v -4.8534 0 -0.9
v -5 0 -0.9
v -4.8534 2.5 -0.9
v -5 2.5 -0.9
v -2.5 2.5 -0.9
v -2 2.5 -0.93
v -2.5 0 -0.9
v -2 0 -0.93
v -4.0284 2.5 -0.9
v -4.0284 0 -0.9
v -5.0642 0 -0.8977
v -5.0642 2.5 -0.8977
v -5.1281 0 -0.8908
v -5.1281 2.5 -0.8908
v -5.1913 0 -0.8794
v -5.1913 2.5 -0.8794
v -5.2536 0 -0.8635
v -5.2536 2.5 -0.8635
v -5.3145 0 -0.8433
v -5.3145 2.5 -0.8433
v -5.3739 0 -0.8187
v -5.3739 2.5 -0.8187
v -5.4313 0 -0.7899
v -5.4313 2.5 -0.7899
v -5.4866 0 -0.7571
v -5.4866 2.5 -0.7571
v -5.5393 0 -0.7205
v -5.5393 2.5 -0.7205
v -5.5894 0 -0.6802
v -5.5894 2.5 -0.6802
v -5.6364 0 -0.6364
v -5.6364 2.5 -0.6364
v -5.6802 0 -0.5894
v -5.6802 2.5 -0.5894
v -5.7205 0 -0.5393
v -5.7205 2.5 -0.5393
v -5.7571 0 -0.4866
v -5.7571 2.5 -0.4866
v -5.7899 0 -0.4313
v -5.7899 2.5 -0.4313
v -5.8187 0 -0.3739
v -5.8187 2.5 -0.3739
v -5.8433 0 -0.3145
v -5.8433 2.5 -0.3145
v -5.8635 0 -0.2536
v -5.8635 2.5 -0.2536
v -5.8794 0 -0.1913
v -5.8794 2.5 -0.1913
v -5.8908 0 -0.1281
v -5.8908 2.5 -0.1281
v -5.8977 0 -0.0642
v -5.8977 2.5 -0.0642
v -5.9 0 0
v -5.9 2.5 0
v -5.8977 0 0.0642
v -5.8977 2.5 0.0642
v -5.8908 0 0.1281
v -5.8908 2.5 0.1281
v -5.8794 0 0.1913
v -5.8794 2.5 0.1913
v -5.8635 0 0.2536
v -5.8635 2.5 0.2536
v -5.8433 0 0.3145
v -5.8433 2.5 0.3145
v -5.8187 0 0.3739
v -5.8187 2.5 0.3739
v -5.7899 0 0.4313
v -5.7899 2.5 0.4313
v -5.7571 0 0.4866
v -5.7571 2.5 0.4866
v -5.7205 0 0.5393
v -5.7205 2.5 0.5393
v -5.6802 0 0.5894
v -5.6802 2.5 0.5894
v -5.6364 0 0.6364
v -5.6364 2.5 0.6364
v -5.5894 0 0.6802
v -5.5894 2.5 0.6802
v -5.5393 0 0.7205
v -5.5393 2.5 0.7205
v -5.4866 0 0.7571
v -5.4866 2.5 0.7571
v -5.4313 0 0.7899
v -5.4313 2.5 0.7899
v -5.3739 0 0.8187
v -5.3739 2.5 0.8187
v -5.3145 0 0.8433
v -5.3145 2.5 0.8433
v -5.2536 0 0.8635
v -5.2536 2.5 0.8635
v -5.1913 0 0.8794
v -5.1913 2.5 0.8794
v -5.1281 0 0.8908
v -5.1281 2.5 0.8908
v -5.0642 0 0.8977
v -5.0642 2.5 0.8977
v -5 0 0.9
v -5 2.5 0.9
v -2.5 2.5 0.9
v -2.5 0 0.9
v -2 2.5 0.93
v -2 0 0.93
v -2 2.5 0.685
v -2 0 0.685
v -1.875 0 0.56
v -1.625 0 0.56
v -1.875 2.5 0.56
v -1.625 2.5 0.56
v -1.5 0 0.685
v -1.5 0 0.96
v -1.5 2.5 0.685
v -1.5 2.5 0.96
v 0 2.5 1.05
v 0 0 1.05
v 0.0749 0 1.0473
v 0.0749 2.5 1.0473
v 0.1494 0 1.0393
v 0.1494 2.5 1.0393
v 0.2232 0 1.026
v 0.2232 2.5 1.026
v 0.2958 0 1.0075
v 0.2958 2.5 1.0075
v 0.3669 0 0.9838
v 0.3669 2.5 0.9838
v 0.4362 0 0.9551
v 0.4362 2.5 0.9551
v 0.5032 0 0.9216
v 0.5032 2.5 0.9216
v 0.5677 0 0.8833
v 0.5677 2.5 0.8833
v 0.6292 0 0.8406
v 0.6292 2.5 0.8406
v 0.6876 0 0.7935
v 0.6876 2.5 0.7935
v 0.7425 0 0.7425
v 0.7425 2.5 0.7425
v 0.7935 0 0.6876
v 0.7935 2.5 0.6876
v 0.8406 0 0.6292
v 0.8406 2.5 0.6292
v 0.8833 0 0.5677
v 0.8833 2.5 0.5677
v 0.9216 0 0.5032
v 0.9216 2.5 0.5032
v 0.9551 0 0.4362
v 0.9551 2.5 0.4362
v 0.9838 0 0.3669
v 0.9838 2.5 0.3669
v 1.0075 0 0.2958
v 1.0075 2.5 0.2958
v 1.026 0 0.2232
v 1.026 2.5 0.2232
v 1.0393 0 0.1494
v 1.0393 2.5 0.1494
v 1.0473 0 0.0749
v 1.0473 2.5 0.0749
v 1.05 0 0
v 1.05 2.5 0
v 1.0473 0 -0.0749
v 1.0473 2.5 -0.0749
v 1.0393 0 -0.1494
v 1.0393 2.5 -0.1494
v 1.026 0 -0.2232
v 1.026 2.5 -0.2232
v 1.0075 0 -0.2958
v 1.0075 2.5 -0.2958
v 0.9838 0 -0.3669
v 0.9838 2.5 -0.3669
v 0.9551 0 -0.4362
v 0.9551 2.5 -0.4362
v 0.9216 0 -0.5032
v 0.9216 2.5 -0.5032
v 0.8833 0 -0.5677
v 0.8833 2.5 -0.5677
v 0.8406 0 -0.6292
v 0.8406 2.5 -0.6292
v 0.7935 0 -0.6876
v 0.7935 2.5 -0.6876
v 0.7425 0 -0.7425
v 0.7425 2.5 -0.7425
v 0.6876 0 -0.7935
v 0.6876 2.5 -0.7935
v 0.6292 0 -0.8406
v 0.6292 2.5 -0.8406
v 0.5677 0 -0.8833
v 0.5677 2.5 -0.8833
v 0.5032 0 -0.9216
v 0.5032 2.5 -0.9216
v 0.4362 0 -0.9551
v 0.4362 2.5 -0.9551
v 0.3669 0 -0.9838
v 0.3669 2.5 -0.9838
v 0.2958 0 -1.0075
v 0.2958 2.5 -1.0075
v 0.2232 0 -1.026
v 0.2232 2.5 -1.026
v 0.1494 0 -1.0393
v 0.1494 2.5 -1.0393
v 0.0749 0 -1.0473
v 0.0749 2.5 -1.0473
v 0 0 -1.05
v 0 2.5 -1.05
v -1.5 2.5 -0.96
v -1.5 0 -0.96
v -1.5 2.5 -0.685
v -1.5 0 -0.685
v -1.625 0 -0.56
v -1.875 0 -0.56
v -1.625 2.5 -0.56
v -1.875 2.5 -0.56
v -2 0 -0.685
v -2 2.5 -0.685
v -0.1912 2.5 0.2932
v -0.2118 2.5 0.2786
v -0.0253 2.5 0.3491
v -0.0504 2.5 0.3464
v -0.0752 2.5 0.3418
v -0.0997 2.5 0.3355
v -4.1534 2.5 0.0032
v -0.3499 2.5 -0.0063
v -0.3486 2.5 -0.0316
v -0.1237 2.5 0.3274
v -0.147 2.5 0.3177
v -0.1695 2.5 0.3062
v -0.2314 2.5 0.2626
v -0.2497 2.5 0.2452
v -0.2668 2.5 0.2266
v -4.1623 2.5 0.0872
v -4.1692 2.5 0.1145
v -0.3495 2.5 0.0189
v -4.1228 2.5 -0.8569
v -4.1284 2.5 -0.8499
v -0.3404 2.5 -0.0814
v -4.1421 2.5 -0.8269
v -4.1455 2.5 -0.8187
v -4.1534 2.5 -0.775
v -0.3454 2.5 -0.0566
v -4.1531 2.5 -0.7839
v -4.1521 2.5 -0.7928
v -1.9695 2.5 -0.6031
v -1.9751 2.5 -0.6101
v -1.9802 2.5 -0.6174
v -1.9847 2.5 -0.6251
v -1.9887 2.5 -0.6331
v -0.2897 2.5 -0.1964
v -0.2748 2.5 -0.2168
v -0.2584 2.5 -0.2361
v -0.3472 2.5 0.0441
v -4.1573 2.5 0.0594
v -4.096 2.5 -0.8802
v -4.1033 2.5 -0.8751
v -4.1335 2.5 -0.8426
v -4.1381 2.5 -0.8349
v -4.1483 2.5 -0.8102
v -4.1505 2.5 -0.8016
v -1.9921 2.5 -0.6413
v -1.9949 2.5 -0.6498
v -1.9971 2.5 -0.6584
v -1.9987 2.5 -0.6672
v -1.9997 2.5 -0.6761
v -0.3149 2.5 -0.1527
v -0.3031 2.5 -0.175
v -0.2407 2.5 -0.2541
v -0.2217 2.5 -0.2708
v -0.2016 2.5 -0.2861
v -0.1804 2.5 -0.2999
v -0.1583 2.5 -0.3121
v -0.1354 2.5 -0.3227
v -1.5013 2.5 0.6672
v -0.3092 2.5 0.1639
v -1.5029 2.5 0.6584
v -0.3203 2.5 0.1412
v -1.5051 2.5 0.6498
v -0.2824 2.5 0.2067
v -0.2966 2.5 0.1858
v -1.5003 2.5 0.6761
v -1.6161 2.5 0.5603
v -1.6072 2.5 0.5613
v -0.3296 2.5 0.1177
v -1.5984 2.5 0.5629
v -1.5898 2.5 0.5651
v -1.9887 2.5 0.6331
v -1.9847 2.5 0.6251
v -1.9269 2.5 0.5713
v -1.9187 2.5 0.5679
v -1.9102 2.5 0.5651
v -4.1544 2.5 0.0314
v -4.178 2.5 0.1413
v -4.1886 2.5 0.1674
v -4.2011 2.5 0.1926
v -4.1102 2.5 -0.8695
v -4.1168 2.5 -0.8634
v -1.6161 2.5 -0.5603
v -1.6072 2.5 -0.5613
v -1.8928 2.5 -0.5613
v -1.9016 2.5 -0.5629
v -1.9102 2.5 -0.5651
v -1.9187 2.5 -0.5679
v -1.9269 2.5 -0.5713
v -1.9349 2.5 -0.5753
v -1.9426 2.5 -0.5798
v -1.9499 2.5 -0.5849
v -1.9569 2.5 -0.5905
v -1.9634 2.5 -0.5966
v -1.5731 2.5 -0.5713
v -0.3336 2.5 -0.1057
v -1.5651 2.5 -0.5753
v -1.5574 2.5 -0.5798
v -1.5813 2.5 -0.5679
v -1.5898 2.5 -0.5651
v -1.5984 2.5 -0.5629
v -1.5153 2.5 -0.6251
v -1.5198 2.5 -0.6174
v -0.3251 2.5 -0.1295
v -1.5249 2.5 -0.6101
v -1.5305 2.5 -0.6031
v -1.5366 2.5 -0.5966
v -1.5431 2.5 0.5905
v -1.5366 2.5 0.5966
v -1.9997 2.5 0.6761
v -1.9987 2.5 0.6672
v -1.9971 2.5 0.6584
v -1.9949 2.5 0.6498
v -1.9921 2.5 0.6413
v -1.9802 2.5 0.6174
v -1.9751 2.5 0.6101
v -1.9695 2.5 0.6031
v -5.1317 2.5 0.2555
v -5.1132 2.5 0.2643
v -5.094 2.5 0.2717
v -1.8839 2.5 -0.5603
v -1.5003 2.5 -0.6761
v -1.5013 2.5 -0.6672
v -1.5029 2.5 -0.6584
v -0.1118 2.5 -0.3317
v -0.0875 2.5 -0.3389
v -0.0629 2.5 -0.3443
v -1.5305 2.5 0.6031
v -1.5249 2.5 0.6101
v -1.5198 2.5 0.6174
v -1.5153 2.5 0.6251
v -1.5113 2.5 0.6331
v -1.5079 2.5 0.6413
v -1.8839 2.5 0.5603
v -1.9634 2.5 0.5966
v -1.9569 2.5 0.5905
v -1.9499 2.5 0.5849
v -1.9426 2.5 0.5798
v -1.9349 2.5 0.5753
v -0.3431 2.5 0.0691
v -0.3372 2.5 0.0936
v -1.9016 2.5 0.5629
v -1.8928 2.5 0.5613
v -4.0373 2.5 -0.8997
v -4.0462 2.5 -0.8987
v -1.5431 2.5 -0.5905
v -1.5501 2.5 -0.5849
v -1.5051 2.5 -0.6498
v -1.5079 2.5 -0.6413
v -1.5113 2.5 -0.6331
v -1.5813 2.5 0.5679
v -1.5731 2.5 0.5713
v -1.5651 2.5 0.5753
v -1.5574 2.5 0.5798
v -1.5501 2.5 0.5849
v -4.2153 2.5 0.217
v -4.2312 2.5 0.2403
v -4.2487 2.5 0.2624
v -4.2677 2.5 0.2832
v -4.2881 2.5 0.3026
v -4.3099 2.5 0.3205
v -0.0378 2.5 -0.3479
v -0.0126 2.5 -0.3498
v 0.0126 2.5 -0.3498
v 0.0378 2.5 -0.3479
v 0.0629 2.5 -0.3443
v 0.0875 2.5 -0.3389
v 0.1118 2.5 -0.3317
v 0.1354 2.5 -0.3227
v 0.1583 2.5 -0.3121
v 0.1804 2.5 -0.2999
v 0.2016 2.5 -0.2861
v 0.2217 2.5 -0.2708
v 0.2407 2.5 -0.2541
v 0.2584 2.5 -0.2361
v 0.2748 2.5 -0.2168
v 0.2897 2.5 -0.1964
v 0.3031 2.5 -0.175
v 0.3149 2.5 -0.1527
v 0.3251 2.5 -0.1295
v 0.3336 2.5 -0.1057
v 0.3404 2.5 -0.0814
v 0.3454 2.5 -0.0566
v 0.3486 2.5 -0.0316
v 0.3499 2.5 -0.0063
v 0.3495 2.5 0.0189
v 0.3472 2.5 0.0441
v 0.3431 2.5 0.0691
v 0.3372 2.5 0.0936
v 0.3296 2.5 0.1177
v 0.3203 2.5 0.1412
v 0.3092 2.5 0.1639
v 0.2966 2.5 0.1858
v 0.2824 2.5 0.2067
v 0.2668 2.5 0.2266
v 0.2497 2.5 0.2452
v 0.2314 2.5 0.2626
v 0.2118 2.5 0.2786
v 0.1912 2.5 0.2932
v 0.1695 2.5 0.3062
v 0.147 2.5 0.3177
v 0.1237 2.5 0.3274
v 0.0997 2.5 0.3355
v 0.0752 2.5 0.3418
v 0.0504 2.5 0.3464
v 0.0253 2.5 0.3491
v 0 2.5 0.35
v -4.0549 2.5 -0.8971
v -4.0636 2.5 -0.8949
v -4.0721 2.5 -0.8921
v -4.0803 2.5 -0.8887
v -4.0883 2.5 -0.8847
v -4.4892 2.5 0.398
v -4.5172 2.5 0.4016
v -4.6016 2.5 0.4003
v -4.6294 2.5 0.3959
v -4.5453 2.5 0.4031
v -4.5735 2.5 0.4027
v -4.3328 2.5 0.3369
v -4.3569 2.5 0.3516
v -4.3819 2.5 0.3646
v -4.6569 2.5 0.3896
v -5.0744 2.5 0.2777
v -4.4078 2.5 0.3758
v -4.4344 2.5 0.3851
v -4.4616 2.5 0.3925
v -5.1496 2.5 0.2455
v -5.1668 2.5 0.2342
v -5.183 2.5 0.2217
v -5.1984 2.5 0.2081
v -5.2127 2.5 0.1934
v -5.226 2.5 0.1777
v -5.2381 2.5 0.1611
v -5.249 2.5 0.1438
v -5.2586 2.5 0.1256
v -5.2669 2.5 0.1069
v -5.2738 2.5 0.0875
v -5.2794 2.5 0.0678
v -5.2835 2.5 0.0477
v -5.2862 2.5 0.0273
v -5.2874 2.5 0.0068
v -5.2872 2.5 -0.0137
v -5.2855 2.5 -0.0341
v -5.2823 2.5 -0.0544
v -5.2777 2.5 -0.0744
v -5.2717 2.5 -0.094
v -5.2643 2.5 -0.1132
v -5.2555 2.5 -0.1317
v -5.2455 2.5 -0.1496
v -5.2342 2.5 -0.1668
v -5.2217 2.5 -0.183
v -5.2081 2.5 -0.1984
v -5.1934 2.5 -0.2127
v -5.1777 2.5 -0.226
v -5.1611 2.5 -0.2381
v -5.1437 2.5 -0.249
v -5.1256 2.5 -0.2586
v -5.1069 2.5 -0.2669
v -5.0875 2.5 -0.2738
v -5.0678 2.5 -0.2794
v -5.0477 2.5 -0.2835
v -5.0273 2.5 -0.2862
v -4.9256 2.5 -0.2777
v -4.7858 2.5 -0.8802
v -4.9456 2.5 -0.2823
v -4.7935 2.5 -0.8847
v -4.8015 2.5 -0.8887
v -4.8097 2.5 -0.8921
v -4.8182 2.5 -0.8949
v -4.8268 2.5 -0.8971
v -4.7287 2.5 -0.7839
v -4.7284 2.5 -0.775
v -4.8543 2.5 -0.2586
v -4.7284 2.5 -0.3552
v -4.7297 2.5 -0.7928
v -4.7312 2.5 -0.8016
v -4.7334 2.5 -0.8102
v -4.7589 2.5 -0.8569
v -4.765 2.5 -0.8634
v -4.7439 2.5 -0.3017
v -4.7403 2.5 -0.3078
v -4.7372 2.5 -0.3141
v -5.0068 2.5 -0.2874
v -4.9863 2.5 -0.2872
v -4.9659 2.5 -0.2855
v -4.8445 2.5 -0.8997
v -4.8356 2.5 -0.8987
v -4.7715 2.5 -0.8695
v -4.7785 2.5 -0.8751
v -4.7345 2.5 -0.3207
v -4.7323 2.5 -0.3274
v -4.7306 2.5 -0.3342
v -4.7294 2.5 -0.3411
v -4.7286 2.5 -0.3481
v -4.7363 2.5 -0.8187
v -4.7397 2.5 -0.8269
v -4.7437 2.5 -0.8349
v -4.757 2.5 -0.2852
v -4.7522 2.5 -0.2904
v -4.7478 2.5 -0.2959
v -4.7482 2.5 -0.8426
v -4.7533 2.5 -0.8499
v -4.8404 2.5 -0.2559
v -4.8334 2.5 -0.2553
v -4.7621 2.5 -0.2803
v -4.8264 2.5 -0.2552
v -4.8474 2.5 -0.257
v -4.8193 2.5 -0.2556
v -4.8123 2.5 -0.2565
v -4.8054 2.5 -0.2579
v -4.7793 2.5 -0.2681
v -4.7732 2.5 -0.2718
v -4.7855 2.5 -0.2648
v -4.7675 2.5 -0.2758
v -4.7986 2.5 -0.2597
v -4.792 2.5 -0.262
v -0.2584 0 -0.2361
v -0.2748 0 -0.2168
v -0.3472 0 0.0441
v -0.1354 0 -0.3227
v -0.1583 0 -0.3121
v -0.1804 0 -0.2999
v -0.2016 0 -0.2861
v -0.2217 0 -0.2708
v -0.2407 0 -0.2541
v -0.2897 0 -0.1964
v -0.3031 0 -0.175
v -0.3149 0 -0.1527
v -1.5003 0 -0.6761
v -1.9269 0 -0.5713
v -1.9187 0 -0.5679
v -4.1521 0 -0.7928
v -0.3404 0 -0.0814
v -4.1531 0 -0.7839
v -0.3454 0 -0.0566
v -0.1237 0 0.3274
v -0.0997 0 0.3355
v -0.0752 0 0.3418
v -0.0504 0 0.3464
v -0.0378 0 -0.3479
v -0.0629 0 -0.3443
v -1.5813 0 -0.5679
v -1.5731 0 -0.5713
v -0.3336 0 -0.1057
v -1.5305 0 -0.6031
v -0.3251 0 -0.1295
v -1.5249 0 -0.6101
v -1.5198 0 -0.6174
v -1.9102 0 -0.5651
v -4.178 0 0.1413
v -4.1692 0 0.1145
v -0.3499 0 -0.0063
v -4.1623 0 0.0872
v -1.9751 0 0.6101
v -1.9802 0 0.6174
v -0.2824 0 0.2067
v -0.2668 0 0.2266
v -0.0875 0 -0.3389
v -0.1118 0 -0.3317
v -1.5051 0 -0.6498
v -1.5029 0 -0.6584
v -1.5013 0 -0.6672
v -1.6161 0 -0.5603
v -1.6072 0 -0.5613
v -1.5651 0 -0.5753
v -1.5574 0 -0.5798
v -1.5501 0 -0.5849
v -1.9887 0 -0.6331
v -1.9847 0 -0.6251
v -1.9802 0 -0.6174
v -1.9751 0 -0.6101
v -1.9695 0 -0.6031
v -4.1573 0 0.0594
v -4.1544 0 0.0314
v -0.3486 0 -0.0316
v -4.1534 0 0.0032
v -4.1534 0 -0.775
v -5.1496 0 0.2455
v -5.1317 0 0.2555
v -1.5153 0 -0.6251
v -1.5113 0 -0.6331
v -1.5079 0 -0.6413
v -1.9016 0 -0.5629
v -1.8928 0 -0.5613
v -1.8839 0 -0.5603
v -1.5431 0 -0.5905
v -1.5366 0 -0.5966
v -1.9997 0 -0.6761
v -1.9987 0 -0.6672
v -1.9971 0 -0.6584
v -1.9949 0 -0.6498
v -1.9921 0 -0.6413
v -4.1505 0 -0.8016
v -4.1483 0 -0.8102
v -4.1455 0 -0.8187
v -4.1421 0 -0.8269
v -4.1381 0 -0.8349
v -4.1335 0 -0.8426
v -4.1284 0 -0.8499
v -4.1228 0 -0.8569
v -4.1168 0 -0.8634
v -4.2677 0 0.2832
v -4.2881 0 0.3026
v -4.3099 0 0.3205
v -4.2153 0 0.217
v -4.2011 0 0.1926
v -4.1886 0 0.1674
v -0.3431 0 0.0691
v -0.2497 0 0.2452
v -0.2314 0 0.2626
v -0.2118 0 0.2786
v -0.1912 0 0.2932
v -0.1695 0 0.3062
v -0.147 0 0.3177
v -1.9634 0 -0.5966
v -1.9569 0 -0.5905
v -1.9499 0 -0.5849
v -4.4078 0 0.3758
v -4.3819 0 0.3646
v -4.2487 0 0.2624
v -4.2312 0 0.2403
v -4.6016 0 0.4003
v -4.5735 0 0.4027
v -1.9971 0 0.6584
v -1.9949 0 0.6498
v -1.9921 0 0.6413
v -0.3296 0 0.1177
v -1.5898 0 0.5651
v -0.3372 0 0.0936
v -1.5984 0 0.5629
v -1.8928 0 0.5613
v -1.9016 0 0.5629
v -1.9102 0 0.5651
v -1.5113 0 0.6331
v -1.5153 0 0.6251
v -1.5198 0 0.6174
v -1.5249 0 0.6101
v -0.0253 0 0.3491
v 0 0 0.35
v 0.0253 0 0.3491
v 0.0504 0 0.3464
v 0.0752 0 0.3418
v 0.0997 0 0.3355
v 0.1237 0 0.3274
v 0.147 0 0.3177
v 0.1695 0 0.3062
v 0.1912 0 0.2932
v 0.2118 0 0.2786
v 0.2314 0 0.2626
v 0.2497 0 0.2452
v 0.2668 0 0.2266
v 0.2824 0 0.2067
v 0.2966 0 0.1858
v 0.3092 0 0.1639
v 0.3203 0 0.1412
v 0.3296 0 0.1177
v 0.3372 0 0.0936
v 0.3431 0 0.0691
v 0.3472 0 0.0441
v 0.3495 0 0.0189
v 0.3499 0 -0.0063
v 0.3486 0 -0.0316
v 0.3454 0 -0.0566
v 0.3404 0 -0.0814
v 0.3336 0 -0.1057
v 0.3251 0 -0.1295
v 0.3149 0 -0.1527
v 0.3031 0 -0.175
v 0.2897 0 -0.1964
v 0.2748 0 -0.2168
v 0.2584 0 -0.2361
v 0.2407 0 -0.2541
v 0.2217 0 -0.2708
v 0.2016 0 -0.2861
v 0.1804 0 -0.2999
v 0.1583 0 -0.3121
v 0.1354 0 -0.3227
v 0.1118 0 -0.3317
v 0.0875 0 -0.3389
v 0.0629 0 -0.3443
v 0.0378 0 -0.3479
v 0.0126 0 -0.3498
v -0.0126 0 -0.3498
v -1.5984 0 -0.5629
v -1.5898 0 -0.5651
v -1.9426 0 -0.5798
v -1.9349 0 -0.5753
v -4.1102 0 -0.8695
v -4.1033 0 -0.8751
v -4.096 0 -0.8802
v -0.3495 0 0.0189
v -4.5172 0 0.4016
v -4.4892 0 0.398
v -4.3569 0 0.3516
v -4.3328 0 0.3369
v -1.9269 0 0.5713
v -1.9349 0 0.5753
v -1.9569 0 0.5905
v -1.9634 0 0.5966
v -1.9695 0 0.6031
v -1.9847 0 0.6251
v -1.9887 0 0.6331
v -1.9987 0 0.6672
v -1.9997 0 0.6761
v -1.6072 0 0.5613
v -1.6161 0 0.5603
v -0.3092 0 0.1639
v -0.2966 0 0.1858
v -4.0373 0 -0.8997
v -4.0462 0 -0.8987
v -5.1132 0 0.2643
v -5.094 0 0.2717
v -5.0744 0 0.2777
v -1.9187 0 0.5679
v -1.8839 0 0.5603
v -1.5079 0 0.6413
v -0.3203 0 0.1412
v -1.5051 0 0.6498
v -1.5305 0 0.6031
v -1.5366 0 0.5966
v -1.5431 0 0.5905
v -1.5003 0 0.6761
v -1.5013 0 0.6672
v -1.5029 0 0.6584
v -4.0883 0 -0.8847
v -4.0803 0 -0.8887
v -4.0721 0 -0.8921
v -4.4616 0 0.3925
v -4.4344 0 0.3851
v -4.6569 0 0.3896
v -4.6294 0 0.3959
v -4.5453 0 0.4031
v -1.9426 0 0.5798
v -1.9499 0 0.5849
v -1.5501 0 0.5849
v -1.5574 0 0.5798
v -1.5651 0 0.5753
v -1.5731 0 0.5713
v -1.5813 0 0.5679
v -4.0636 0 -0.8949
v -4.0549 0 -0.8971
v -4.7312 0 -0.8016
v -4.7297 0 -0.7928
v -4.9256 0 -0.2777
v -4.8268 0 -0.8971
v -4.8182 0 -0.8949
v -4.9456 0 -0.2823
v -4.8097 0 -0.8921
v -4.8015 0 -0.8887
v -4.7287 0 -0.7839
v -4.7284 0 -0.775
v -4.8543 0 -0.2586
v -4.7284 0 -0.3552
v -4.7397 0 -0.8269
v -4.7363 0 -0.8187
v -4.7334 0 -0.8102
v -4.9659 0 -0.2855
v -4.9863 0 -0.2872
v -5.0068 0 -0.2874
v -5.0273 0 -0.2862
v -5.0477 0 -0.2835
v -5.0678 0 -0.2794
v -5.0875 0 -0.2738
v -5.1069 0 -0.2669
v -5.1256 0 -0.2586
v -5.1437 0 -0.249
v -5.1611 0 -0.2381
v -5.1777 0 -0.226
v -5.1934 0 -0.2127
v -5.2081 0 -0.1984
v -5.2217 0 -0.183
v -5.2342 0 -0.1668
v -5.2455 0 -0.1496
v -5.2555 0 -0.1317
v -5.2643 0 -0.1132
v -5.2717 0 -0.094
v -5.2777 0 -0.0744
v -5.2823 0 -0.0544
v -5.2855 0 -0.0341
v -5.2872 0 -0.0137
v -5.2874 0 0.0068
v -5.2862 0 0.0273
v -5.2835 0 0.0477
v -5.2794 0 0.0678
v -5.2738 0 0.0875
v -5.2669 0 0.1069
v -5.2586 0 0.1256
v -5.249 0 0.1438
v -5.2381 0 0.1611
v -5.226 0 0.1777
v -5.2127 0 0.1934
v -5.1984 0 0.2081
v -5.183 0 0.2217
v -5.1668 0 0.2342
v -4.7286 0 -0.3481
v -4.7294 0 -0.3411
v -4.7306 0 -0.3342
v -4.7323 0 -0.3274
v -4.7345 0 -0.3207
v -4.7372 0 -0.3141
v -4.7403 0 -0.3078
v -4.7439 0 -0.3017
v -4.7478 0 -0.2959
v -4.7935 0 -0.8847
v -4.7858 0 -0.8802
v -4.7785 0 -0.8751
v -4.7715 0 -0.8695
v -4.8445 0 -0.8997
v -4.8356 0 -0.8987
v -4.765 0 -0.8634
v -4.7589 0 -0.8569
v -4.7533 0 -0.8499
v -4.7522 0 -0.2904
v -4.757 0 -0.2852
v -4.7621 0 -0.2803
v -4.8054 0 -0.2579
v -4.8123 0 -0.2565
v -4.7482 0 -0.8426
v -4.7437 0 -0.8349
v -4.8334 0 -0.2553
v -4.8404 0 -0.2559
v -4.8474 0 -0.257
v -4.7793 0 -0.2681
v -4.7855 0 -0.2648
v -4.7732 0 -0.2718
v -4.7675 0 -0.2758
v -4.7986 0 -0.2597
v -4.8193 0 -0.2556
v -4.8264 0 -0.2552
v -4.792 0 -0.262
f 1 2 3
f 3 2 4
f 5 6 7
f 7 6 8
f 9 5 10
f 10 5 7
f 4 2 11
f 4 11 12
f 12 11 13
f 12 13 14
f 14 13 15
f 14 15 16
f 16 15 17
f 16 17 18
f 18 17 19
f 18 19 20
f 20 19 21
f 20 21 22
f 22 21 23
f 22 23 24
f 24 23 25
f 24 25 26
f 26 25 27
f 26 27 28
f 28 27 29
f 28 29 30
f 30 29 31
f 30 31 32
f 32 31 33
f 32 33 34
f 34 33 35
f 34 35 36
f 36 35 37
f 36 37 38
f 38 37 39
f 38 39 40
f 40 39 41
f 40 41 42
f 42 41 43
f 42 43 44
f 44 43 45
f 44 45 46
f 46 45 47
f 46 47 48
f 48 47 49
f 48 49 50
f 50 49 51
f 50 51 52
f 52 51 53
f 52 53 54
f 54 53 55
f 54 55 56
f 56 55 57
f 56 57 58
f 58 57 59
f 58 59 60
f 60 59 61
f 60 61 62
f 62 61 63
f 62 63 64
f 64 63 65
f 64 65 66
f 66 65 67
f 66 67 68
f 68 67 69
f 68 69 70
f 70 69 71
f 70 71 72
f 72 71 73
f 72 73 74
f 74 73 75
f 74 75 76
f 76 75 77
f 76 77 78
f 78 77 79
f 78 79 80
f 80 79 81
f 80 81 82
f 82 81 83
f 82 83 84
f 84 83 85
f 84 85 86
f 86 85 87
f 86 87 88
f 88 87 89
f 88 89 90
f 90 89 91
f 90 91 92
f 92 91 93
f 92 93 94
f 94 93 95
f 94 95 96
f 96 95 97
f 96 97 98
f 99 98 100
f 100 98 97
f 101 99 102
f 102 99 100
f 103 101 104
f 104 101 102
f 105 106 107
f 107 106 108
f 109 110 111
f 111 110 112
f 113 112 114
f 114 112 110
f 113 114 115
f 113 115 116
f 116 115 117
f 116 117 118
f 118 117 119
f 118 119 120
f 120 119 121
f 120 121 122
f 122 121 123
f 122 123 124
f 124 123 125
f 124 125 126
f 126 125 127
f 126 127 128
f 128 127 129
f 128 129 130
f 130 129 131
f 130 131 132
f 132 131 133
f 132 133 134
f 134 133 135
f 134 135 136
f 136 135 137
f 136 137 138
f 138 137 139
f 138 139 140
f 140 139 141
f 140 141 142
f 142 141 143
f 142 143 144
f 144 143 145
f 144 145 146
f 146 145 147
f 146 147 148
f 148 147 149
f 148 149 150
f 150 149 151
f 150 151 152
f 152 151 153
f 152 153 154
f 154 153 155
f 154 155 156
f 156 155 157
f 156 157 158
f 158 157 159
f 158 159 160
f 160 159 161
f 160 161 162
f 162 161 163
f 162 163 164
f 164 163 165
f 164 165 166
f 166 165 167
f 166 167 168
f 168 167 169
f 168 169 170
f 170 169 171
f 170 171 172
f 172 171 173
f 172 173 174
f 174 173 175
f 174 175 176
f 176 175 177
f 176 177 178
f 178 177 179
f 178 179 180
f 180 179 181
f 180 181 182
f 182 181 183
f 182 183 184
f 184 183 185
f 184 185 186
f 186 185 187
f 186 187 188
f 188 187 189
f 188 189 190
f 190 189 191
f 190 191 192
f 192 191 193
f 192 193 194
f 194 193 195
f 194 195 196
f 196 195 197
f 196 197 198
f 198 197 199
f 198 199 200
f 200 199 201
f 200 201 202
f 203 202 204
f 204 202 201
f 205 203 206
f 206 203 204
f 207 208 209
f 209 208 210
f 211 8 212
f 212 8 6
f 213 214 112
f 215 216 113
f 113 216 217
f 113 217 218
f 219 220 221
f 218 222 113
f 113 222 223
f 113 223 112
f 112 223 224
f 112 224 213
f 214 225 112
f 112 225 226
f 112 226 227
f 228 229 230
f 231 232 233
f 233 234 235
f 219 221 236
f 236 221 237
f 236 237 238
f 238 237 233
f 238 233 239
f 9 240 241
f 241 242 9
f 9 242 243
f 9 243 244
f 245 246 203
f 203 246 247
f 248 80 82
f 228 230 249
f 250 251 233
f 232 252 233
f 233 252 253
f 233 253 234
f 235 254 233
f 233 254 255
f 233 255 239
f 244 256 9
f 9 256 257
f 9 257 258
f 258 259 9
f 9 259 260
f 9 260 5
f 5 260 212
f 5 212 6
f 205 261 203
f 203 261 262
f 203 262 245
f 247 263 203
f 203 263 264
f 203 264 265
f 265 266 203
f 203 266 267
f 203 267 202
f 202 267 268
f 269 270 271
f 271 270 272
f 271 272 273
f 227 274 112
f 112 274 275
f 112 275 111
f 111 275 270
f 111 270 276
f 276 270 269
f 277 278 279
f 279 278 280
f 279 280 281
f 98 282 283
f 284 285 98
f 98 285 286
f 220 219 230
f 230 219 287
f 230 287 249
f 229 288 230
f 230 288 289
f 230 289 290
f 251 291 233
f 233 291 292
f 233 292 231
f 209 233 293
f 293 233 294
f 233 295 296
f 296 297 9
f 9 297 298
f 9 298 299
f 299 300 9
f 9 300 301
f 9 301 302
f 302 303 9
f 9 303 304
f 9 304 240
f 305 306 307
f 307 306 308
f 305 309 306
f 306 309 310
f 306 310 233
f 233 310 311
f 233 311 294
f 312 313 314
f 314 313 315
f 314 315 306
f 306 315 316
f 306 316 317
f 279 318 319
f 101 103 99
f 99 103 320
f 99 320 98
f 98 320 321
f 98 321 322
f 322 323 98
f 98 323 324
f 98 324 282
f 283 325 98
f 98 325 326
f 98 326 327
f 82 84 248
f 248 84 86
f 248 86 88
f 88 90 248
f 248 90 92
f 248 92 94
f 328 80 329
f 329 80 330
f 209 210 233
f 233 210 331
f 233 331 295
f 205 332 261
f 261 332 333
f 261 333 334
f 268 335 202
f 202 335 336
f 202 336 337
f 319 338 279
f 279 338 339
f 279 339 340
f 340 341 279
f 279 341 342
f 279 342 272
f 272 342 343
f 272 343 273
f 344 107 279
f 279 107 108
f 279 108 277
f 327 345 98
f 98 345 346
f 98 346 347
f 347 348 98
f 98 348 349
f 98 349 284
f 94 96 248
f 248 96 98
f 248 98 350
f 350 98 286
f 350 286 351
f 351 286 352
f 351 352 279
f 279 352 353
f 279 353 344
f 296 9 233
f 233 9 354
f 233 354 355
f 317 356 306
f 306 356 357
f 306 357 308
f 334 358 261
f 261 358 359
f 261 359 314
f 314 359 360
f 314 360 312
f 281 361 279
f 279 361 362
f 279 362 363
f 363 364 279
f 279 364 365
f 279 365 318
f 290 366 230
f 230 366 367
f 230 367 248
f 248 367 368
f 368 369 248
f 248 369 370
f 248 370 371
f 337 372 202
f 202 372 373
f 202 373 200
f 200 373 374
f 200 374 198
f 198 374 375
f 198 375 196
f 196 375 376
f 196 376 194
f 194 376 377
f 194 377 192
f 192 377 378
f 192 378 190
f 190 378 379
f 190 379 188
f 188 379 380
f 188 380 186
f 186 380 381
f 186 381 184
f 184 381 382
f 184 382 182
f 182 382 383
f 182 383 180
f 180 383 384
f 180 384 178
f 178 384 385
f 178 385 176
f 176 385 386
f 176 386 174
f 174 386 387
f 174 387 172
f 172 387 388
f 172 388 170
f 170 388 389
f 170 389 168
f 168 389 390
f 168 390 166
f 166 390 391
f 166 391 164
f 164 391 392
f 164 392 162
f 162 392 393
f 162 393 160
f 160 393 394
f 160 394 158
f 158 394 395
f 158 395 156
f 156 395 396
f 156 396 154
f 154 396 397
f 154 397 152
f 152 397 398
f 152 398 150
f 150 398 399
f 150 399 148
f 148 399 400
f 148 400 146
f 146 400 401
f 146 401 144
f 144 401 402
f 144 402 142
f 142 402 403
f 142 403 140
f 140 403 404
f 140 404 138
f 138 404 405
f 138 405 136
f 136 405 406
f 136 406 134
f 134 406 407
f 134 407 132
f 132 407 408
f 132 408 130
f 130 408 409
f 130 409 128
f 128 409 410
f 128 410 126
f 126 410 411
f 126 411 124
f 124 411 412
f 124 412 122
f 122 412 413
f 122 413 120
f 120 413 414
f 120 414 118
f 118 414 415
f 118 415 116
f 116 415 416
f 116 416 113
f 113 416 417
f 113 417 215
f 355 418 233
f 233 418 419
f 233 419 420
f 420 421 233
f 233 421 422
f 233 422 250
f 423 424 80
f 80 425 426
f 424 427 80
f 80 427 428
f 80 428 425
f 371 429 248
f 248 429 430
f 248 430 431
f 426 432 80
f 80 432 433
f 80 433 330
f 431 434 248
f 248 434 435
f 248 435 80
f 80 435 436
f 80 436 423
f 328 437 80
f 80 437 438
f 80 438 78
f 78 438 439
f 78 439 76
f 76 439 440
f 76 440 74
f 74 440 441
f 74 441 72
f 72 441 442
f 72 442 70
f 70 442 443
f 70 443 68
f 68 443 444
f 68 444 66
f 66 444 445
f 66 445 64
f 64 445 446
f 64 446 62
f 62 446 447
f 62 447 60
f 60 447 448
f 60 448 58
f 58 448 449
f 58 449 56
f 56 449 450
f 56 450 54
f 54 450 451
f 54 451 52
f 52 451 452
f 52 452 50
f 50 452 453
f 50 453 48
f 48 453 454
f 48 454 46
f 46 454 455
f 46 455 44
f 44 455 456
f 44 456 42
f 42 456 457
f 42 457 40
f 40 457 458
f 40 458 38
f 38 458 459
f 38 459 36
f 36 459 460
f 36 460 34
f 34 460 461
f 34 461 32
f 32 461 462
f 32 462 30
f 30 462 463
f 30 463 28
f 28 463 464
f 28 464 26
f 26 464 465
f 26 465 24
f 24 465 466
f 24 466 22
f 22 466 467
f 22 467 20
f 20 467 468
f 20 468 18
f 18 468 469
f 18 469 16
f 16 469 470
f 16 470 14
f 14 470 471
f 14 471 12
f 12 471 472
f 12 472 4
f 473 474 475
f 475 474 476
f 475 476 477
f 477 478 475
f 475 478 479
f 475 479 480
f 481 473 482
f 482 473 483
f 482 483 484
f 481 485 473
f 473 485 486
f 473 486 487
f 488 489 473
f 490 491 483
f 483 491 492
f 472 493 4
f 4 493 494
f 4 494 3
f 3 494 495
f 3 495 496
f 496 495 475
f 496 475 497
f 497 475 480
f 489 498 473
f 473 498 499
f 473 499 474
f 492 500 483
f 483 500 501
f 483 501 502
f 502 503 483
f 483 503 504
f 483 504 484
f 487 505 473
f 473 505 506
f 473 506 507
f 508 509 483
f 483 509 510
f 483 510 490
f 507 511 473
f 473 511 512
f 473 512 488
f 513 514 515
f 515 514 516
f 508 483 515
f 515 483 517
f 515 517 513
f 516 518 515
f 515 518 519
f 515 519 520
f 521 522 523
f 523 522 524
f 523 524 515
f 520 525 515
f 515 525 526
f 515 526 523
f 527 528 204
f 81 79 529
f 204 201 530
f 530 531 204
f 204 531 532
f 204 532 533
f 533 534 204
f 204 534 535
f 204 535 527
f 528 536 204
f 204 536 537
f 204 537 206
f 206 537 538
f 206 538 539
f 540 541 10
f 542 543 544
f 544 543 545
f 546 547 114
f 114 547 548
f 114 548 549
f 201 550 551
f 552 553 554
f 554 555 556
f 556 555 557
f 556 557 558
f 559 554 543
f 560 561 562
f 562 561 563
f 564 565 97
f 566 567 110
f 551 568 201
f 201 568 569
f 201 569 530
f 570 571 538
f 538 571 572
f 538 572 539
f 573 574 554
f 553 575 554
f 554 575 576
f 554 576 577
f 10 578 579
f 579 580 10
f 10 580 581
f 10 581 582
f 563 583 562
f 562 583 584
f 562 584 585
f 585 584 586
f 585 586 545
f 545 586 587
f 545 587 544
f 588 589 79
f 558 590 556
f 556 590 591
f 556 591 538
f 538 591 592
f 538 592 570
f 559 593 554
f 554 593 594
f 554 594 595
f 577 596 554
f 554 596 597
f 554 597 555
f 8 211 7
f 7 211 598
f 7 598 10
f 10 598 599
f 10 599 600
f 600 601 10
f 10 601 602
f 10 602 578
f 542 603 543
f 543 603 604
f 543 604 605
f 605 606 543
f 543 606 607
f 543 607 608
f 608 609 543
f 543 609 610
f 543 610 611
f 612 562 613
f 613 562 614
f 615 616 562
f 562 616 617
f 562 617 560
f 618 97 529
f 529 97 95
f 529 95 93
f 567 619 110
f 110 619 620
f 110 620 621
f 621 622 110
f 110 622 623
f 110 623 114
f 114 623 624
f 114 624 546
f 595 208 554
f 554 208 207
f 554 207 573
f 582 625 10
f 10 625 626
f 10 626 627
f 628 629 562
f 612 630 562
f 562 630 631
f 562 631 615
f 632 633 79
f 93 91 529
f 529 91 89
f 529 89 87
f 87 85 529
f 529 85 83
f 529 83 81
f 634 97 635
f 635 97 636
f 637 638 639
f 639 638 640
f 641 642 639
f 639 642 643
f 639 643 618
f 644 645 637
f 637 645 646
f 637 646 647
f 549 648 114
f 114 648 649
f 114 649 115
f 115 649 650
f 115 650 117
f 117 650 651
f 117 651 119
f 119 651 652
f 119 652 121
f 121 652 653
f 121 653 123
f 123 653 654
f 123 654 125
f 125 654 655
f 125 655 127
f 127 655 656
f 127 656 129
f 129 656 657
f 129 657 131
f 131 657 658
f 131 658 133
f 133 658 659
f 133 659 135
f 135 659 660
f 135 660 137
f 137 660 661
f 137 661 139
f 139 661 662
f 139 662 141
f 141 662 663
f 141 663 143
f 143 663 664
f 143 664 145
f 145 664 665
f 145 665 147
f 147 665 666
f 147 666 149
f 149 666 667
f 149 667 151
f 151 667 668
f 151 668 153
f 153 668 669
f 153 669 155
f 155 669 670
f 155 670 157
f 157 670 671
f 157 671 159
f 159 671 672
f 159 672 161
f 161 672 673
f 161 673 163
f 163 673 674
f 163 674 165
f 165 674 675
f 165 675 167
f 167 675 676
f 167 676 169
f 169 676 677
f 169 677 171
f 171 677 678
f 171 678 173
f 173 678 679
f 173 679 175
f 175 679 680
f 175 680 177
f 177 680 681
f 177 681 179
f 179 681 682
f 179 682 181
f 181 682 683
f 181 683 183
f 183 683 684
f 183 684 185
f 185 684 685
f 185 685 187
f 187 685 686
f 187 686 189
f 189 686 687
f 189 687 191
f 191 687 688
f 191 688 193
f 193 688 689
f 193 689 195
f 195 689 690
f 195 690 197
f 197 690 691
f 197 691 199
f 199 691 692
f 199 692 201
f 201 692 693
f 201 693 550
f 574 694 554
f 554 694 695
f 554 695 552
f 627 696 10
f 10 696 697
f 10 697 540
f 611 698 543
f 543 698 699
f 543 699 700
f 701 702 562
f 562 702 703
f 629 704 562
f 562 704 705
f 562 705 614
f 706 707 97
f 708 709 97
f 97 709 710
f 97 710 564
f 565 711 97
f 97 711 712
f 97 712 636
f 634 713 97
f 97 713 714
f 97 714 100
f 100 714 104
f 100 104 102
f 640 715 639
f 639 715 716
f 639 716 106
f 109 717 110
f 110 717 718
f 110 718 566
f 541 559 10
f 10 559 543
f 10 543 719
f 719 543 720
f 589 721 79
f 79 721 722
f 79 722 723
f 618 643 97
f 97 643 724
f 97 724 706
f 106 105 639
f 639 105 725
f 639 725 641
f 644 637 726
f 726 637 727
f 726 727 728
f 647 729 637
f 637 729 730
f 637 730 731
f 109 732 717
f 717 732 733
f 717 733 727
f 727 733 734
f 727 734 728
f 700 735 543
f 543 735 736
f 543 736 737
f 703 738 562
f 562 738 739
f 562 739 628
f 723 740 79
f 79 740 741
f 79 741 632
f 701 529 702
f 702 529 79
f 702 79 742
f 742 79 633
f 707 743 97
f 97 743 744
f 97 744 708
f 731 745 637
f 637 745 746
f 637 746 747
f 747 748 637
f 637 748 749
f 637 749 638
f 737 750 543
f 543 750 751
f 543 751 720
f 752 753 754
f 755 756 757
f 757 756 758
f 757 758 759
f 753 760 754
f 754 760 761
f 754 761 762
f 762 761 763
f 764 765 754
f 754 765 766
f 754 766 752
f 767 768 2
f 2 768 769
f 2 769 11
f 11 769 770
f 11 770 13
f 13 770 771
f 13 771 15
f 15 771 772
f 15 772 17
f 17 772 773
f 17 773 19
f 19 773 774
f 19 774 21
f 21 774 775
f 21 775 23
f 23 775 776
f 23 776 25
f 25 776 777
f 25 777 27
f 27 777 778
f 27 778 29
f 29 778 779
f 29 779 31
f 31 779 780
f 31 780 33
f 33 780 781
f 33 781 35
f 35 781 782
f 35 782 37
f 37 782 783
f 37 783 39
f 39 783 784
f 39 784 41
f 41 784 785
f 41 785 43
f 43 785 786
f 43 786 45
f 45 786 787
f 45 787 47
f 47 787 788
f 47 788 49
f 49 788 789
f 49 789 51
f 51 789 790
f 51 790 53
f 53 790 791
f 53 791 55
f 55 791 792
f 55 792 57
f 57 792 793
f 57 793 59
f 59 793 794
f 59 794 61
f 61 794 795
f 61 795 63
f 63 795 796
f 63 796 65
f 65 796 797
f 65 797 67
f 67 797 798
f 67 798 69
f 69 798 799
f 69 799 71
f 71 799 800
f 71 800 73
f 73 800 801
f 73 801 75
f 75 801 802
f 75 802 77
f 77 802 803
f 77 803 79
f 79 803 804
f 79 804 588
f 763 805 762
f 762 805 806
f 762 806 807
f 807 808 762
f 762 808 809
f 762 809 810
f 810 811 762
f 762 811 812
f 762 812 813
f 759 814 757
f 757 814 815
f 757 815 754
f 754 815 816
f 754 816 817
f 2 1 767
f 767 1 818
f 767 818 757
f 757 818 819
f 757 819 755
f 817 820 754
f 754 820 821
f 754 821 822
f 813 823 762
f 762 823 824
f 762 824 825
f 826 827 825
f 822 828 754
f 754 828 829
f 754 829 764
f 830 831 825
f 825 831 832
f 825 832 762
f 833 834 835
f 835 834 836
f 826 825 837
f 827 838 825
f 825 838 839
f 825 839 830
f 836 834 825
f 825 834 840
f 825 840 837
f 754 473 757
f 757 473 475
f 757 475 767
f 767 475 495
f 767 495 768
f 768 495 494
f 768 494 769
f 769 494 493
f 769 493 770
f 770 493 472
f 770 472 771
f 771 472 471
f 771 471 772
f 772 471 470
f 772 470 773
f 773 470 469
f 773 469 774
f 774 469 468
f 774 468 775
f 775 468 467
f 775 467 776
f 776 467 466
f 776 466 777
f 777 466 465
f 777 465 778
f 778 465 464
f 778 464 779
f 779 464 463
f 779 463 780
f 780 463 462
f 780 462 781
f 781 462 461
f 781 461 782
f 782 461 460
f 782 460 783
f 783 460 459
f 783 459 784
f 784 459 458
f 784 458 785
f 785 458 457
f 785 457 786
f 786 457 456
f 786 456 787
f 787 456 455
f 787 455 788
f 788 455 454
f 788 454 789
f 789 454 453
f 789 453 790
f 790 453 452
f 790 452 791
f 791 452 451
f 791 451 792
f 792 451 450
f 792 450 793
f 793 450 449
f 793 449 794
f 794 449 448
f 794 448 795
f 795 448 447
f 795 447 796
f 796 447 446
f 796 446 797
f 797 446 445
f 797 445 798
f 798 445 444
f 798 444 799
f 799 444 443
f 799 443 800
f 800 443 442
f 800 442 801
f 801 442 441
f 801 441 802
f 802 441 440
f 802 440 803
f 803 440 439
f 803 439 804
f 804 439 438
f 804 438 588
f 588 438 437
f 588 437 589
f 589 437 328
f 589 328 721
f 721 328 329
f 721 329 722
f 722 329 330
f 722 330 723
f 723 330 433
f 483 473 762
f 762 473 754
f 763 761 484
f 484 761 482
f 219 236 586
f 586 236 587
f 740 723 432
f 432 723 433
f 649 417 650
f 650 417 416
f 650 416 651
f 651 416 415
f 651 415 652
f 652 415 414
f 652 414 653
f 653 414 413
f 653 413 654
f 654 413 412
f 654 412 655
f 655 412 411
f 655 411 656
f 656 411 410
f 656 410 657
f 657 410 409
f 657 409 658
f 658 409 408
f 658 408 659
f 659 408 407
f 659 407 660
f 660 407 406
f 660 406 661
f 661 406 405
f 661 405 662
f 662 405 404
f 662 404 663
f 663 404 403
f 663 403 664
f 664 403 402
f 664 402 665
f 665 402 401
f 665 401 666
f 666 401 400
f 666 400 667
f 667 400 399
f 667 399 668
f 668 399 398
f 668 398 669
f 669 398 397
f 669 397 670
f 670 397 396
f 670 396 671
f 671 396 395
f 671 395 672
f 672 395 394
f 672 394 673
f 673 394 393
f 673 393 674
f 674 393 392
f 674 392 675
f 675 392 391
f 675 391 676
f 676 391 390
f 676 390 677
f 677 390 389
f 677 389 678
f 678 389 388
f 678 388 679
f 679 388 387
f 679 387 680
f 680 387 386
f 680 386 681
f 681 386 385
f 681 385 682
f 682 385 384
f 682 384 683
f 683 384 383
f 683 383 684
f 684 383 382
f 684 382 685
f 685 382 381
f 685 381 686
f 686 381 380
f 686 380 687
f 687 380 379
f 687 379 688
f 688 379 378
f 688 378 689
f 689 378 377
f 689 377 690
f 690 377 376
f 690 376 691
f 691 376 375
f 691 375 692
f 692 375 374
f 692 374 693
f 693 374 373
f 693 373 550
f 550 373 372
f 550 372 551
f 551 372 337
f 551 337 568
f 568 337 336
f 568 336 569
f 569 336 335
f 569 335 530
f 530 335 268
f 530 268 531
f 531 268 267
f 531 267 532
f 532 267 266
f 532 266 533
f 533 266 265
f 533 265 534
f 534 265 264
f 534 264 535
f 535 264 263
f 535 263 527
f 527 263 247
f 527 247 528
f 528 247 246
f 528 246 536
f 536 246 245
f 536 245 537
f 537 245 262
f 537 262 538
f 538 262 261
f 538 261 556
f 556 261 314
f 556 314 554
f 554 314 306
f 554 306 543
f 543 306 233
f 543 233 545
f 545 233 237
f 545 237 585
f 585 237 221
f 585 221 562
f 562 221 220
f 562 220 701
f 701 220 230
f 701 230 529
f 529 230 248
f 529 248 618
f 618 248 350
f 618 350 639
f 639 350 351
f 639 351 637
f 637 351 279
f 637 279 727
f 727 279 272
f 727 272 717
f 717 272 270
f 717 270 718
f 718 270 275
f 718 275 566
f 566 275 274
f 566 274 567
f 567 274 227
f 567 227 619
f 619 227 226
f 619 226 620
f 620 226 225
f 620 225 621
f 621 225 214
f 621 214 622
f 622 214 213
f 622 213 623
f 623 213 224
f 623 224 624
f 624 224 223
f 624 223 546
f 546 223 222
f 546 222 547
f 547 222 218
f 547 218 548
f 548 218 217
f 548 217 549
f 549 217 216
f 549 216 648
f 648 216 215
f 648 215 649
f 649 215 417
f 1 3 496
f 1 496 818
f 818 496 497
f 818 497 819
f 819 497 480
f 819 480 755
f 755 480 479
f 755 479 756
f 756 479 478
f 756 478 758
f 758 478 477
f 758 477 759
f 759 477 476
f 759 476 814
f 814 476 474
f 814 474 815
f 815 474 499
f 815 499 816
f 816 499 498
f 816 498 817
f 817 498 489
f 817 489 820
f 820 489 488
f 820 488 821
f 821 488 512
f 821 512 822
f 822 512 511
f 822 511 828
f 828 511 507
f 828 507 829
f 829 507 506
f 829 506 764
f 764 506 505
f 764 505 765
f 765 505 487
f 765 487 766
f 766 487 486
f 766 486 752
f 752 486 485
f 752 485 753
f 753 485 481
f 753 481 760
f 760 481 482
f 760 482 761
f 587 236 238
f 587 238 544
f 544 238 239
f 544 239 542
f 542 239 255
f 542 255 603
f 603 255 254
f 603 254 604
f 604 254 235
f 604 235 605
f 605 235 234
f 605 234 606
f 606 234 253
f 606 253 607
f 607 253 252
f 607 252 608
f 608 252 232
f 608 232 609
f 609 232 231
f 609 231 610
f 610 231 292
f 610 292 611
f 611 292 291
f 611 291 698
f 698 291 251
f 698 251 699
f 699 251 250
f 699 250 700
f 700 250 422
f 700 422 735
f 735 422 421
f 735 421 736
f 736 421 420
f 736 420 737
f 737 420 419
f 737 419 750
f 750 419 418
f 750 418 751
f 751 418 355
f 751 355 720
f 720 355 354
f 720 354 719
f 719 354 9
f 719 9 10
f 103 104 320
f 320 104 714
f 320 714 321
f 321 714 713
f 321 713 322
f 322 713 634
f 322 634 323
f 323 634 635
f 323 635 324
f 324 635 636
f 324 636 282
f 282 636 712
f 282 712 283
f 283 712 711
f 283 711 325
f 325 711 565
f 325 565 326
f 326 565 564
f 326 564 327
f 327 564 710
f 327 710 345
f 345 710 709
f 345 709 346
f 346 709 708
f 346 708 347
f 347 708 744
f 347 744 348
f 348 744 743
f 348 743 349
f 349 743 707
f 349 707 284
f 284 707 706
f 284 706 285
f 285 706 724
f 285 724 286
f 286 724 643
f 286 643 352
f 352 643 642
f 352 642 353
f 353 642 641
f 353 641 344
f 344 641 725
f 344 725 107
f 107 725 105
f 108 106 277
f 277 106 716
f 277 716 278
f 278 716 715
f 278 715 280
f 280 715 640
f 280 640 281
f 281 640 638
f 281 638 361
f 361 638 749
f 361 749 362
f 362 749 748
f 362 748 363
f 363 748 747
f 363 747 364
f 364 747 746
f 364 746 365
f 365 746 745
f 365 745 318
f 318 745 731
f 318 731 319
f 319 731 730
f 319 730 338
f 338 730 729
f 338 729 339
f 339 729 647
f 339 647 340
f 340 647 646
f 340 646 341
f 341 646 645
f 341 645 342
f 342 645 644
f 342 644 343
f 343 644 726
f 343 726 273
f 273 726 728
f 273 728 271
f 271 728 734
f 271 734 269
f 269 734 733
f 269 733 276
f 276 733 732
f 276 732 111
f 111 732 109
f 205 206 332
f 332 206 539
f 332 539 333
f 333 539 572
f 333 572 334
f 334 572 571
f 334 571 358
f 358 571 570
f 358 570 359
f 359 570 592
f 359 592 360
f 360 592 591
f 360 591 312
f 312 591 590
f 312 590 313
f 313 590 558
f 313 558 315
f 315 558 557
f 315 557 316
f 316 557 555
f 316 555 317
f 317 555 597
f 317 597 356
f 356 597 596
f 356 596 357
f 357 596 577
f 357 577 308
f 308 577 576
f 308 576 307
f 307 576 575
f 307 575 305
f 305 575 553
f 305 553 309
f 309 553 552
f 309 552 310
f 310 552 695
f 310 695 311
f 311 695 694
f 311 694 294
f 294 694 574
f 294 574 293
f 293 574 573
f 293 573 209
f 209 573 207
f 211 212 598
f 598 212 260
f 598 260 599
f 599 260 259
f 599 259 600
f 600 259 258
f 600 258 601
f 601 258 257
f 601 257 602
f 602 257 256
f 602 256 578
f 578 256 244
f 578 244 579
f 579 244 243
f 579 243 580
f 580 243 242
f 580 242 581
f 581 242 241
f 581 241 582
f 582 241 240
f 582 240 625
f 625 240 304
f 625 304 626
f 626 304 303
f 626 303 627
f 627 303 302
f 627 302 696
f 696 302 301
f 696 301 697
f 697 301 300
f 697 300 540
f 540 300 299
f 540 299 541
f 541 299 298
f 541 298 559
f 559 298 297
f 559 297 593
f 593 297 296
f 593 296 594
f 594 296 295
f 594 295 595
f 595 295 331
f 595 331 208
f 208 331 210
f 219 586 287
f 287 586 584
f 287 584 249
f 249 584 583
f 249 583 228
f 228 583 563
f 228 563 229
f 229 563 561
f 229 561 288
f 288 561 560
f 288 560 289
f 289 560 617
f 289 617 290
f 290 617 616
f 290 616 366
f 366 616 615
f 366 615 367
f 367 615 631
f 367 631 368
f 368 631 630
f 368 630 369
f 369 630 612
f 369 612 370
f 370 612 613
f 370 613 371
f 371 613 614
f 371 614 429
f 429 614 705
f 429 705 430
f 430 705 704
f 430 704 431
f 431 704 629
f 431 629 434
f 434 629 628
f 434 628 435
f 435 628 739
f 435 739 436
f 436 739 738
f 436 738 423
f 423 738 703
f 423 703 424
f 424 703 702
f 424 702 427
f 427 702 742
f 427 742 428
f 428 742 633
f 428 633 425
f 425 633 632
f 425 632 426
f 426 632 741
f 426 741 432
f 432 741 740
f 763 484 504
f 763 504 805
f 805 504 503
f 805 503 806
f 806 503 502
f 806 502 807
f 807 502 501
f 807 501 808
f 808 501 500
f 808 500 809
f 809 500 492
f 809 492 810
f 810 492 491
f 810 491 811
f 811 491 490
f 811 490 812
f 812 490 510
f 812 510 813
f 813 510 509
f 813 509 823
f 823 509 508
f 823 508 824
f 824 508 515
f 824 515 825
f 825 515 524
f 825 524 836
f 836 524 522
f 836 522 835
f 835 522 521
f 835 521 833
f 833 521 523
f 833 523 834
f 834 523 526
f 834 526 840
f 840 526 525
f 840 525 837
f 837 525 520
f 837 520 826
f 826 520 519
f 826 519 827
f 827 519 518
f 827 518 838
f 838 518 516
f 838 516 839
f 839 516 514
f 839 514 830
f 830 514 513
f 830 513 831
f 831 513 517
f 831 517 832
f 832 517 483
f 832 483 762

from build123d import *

# Parameters (mm, degrees)
BOSS_EXTRUDE1_DEPTH = 2.5
SKETCH4_R           = 0.35
THROUGH_HOLES_DEPTH = 7.493265742
FILLET1_R           = 0.125
FILLET2_R           = 0.4
FILLET3_R           = 0.1


with BuildPart() as part:
    # Sketch3 → Boss-Extrude1 (new body)
    with BuildSketch(Plane(origin=(0, 0, 0), x_dir=(1, 0, 0), z_dir=(0, 1, 0))):
        with BuildLine():
            Line((-2.5, 0.9), (-2, 0.93))
            Line((-2, 0.93), (-2, 0.56))
            Line((-2, 0.56), (-1.5, 0.56))
            Line((-1.5, 0.56), (-1.5, 0.96))
            Line((-1.5, 0.96), (0, 1.05))
            ThreePointArc((0, 1.05), (1.05, 0), (0, -1.05))
            Line((0, -1.05), (-1.5, -0.96))
            Line((-1.5, -0.96), (-1.5, -0.56))
            Line((-1.5, -0.56), (-2, -0.56))
            Line((-2, -0.56), (-2, -0.93))
            Line((-2, -0.93), (-2.5, -0.9))
            Line((-2.5, -0.9), (-5, -0.9))
            ThreePointArc((-5, -0.9), (-5.9, 0), (-5, 0.9))
            Line((-5, 0.9), (-2.5, 0.9))
        make_face()
    extrude(amount=BOSS_EXTRUDE1_DEPTH)

    # Sketch4 → Through Holes (cut, through all)
    with BuildSketch(Plane(origin=(0, 2.5, 0), x_dir=(1, 0, 0), z_dir=(0, 1, 0))):
        with Locations(Location((0, 0, 0), (0, 0, 270))):
            Circle(SKETCH4_R)
        with BuildLine():
            Line((-4.925589525, 0.277703675), (-4.728379147, 0.224861314))
            Line((-4.728379147, 0.224861314), (-4.728379147, 0.9))
            Line((-4.728379147, 0.9), (-4.153379147, 0.9))
            Line((-4.153379147, 0.9), (-4.153379147, -0.524493276))
            Line((-4.153379147, -0.524493276), (-5.074410475, -0.277703675))
            ThreePointArc((-5.074410475, -0.277703675), (-5.277703675, 0.074410475), (-4.925589525, 0.277703675))
        make_face()
    extrude(amount=-THROUGH_HOLES_DEPTH, mode=Mode.SUBTRACT)

    # Fillet1
    fillet1_edges = [part.edges().sort_by_distance(p)[0] for p in [
        (-2, 1.25, 0.56),
        (-1.5, 1.25, 0.56),
        (-1.5, 1.25, -0.56),
        (-2, 1.25, -0.56),
        (-4.728379147, 1.25, -0.9),
        (-4.153379147, 1.25, -0.9),
    ]]
    fillet(fillet1_edges, radius=FILLET1_R)

    # Fillet2
    fillet2_edges = [part.edges().sort_by_distance(p)[0] for p in [
        (-4.153379147, 1.25, 0.524493276),
    ]]
    fillet(fillet2_edges, radius=FILLET2_R)

    # Fillet3
    fillet3_edges = [part.edges().sort_by_distance(p)[0] for p in [
        (-4.728379147, 1.25, -0.224861314),
    ]]
    fillet(fillet3_edges, radius=FILLET3_R)


solid = part.part
